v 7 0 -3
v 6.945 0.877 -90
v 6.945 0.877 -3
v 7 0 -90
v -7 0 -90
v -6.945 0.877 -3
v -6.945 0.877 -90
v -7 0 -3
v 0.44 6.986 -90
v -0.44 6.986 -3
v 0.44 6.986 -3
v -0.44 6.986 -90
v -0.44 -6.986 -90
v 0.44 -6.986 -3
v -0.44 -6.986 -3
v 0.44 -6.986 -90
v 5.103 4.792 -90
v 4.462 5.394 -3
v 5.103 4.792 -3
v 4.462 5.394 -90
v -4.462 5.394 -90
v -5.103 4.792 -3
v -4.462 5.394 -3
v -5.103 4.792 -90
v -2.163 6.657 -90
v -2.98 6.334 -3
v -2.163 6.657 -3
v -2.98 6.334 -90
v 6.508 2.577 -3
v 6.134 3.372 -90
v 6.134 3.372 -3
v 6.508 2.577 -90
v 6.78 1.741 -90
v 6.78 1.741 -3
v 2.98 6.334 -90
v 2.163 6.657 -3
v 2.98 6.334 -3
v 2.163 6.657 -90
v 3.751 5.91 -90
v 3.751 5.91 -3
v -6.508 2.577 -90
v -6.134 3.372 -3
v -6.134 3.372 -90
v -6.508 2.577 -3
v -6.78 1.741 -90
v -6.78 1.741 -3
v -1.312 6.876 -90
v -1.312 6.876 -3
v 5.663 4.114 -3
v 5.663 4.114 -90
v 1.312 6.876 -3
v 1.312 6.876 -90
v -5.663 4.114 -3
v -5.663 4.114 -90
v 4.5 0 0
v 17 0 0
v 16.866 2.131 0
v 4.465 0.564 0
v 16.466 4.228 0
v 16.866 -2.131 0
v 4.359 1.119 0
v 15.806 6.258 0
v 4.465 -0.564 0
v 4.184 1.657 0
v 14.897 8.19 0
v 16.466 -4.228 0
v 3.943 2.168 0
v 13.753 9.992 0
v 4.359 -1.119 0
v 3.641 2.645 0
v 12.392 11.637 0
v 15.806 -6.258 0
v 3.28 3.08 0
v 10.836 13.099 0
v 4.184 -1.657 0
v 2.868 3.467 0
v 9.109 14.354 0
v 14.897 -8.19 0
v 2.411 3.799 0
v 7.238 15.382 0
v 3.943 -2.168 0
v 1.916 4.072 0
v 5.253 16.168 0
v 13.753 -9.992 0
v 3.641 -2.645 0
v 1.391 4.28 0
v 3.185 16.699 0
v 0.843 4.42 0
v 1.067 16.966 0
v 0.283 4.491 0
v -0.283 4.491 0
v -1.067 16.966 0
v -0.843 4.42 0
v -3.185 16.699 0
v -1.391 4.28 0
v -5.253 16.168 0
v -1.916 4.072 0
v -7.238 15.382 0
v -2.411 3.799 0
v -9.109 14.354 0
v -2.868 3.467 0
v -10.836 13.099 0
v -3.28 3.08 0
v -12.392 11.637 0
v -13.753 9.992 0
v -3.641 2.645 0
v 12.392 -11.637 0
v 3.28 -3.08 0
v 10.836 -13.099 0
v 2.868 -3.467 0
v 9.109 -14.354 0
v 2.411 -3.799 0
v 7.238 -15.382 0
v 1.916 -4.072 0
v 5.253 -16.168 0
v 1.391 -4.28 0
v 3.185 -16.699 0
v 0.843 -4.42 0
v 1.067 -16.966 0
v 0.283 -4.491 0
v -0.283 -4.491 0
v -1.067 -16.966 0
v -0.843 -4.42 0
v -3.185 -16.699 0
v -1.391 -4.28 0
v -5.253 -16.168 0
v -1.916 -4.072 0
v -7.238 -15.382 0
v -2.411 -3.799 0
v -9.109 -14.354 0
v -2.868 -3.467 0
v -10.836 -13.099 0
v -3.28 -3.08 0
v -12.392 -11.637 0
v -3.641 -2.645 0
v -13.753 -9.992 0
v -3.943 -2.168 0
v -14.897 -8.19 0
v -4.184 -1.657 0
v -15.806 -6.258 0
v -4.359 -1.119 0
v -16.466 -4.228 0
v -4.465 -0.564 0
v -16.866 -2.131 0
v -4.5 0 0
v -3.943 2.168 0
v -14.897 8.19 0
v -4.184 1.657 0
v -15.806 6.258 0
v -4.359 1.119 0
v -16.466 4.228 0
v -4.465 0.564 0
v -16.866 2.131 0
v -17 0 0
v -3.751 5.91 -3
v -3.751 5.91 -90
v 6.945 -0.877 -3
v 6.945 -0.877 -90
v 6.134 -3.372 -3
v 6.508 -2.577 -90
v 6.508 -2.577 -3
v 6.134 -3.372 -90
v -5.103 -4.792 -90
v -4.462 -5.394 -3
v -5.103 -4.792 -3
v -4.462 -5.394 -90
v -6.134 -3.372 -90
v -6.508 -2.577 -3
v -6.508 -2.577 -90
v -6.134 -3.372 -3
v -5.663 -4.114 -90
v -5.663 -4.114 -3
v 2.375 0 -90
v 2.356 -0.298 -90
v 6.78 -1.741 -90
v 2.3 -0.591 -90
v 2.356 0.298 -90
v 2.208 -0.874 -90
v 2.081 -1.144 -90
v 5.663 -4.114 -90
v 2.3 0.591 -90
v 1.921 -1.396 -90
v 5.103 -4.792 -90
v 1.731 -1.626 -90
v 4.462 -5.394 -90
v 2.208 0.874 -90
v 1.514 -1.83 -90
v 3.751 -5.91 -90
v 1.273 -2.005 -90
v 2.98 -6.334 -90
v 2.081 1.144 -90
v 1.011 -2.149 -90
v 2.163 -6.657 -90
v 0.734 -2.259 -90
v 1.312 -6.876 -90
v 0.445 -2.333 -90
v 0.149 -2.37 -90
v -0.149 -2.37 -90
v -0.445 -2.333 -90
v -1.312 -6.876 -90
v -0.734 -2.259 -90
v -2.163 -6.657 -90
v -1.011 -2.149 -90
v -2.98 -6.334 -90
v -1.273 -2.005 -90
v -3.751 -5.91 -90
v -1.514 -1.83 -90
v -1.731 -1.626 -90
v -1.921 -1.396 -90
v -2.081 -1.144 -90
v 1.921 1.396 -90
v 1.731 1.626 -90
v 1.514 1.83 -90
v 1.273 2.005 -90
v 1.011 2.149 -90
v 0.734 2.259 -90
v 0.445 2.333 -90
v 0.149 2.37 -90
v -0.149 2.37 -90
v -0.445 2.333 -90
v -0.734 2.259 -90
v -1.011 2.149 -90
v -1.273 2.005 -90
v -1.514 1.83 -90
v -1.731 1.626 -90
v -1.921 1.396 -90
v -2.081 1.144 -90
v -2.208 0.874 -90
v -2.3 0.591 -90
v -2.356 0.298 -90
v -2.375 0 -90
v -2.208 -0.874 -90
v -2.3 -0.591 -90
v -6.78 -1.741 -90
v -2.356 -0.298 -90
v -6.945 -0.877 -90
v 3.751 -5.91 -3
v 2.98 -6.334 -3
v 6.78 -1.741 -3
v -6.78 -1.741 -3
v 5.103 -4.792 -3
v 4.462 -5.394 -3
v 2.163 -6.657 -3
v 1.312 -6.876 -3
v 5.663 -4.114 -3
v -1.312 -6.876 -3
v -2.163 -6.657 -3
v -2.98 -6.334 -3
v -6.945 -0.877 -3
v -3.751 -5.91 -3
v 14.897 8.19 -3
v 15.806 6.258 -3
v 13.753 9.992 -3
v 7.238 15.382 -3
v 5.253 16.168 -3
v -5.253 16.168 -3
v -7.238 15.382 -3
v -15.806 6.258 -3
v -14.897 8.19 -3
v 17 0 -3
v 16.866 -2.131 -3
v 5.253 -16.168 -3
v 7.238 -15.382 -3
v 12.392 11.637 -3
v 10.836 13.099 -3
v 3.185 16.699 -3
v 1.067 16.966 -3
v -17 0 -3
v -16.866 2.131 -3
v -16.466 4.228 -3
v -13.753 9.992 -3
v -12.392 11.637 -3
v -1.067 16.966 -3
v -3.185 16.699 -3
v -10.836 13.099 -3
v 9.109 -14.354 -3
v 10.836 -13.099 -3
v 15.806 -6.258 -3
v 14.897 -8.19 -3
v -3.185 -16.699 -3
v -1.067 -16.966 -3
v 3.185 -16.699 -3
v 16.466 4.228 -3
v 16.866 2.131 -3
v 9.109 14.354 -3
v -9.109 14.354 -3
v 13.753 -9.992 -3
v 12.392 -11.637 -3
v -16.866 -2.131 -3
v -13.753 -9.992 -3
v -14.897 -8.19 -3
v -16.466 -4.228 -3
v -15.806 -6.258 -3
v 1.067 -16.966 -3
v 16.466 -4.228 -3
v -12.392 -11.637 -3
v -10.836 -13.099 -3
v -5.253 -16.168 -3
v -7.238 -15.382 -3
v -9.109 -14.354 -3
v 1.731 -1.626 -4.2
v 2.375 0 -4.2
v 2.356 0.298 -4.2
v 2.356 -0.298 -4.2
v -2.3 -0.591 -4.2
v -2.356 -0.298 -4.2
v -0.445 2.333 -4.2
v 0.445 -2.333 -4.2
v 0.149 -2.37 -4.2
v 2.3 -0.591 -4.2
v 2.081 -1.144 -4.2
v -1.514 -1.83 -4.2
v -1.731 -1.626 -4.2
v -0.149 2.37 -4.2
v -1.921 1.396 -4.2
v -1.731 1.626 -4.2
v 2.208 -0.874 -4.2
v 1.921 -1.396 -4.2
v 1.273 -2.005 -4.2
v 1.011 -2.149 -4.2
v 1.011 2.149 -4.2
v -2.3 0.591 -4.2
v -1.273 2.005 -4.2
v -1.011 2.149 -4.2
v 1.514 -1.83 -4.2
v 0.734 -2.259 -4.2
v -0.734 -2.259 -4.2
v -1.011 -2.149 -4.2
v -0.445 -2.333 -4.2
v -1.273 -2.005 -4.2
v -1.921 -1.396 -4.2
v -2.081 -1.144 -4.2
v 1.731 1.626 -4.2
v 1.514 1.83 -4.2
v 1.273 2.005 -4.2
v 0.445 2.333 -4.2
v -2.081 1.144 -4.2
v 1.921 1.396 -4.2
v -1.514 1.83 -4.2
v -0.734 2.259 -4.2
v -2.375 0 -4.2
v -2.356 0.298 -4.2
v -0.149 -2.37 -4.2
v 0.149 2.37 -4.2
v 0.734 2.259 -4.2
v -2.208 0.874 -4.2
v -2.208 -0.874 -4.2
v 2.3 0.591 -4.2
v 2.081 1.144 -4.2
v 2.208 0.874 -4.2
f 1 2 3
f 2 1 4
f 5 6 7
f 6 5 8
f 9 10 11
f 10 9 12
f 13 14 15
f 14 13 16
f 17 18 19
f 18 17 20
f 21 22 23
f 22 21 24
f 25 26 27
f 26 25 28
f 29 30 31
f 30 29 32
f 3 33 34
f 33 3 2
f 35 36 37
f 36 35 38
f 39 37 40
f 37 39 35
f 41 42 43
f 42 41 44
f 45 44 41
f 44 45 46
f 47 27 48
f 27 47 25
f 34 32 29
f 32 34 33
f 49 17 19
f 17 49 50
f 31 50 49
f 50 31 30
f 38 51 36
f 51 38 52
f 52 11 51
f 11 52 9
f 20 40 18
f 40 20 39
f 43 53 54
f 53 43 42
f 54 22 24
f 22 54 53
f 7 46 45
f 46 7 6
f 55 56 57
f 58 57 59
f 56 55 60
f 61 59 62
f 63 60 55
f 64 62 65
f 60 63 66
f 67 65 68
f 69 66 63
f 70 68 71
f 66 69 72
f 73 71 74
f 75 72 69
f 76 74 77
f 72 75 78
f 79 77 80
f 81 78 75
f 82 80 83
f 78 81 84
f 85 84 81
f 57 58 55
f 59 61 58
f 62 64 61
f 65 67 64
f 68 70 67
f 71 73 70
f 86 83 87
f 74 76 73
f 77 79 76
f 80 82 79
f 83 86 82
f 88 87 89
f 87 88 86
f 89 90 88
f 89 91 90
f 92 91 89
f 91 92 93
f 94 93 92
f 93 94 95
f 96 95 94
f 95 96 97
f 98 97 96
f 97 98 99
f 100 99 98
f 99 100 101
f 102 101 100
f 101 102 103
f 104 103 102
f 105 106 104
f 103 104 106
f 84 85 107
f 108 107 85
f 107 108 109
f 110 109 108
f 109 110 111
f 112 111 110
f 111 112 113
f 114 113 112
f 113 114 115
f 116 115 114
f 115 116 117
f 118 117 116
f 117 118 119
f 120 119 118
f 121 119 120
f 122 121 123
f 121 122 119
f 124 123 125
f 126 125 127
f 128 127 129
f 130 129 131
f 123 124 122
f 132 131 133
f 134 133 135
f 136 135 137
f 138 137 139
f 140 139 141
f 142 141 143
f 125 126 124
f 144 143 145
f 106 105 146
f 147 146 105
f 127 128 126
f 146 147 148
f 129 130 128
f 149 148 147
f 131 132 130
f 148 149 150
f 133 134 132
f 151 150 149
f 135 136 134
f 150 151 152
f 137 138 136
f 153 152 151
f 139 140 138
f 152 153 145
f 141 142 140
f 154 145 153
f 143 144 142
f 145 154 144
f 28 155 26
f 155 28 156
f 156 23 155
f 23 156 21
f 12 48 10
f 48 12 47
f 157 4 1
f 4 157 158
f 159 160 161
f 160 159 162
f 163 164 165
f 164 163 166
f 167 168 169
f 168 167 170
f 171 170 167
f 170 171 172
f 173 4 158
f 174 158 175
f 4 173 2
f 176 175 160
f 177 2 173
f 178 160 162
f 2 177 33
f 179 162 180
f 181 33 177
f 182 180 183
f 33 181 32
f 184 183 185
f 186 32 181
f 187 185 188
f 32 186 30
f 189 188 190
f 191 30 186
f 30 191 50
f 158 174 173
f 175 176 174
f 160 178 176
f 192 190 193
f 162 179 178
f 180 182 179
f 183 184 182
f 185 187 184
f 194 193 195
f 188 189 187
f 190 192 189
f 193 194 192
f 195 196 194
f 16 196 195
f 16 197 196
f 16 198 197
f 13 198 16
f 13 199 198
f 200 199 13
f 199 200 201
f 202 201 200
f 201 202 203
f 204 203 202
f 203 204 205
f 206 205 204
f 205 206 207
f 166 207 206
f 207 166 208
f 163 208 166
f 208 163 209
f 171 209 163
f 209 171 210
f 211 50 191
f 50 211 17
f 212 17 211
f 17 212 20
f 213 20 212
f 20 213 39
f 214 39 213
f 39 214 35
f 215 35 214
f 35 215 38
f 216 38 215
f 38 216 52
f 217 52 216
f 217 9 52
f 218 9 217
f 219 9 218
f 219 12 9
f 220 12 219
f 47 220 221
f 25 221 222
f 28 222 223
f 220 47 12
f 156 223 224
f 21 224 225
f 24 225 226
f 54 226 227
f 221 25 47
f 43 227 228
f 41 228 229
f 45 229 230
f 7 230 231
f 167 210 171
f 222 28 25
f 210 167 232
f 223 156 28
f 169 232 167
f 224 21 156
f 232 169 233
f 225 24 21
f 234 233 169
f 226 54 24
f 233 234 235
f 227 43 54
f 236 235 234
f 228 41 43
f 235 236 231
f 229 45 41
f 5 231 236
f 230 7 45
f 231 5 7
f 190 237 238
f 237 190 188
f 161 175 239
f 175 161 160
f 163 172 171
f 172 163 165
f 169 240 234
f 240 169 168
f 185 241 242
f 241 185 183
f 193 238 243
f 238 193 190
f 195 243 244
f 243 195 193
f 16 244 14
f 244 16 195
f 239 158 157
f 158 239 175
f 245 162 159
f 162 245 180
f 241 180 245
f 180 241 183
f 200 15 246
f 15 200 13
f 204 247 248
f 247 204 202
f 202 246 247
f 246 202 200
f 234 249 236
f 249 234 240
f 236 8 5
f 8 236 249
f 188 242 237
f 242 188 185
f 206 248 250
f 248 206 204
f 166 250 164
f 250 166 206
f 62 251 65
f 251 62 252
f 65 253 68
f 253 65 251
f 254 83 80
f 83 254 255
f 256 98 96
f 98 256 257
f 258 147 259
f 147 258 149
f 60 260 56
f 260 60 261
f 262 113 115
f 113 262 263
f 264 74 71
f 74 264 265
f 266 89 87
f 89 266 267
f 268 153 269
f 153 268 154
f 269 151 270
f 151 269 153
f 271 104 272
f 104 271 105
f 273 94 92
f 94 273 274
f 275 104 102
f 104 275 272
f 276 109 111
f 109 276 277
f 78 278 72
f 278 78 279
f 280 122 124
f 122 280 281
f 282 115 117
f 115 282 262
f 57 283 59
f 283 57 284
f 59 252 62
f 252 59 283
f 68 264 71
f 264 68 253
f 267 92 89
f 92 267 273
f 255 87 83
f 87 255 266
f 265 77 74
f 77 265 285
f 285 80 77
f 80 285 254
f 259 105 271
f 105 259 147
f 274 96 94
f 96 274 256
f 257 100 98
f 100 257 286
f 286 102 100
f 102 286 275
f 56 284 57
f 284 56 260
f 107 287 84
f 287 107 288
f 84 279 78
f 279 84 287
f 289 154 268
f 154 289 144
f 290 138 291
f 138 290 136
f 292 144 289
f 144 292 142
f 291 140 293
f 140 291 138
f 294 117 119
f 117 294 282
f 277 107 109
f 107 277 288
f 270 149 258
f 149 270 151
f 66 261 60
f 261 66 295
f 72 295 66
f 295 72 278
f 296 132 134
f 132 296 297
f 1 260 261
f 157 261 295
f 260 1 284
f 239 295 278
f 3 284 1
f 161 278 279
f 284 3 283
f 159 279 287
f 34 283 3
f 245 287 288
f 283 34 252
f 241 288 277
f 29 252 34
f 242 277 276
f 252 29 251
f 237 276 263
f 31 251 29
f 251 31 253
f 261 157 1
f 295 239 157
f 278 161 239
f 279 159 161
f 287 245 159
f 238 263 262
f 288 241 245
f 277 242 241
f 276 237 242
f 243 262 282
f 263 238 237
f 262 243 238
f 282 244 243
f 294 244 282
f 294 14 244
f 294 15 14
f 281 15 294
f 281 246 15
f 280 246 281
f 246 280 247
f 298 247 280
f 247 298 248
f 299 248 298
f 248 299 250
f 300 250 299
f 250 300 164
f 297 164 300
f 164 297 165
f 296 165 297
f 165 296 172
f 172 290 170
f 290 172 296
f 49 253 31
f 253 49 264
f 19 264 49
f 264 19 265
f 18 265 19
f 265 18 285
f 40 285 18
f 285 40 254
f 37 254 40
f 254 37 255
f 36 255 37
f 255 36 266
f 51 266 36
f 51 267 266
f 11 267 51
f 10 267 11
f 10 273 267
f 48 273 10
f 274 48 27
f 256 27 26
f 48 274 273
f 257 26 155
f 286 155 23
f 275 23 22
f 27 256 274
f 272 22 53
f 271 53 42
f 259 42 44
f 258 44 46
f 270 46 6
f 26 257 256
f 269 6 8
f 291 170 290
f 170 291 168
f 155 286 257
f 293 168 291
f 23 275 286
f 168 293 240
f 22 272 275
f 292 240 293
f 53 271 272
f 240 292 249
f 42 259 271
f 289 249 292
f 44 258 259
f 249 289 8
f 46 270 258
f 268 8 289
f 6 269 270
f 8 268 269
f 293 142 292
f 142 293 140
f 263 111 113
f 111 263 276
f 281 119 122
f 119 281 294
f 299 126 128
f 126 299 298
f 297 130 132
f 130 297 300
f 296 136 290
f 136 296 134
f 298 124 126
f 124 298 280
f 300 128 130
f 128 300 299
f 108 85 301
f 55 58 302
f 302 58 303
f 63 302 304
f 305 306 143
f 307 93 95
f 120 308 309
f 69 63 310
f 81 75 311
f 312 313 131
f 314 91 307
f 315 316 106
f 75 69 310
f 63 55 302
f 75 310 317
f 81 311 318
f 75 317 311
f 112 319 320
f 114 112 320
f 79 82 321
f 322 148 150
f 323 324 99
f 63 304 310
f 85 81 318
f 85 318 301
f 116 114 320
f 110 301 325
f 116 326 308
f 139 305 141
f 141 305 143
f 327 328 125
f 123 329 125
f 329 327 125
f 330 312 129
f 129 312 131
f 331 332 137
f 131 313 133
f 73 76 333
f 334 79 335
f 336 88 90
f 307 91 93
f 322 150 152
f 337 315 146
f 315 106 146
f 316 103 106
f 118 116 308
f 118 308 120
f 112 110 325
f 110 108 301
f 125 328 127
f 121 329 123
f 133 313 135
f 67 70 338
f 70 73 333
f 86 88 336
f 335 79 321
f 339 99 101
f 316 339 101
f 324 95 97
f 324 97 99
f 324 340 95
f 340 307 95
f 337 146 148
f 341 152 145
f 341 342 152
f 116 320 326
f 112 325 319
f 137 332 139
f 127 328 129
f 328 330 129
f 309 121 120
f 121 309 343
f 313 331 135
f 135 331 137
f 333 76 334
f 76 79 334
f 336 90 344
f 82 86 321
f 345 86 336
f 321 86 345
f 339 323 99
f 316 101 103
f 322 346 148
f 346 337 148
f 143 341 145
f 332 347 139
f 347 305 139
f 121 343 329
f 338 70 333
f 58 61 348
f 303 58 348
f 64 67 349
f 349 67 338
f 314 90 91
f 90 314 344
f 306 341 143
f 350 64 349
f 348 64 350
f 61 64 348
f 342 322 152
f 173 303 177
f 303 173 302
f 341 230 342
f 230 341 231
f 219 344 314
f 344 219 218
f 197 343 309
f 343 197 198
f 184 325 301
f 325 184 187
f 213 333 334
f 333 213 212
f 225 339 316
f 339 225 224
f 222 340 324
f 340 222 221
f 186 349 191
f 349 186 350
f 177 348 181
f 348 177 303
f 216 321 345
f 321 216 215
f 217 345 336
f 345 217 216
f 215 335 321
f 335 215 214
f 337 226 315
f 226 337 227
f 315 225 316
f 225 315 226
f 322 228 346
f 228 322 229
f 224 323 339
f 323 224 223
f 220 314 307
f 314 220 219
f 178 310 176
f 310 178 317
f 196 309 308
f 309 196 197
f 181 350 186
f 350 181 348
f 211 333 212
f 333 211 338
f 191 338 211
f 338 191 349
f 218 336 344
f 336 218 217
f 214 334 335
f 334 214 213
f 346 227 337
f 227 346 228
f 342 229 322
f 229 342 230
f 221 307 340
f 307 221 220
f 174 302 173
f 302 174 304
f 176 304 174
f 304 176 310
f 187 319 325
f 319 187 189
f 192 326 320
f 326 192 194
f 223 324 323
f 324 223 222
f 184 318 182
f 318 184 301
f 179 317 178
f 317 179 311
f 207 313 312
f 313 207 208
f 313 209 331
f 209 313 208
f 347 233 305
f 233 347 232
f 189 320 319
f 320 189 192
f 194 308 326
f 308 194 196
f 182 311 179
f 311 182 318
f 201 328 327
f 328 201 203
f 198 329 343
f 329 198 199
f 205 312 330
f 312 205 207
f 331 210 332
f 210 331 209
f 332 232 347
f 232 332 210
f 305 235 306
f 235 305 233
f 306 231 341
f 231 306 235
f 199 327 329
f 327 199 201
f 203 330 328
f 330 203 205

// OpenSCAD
$fn = 50;


difference() {
	union() {
		translate(v = [0, 0, -90.0000000000]) {
			cylinder(h = 90, r = 7.0000000000);
		}
		translate(v = [0, 0, -3.0000000000]) {
			cylinder(h = 3, r = 17.0000000000);
		}
	}
	union() {
		translate(v = [0, 0, 0]) {
			rotate(a = [0, 0, 0]) {
				difference() {
					union() {
						#translate(v = [0, 0, -90.0000000000]) {
							cylinder(h = 90, r = 2.2500000000);
						}
						#translate(v = [0, 0, -4.2000000000]) {
							cylinder(h = 4.2000000000, r = 7.0000000000, r1 = 2.3750000000, r2 = 4.5000000000);
						}
						#translate(v = [0, 0, -90.0000000000]) {
							cylinder(h = 90, r = 2.3750000000);
						}
						#translate(v = [0, 0, -90.0000000000]) {
							cylinder(h = 90, r = 2.2500000000);
						}
					}
					union();
				}
			}
		}
	}
}
